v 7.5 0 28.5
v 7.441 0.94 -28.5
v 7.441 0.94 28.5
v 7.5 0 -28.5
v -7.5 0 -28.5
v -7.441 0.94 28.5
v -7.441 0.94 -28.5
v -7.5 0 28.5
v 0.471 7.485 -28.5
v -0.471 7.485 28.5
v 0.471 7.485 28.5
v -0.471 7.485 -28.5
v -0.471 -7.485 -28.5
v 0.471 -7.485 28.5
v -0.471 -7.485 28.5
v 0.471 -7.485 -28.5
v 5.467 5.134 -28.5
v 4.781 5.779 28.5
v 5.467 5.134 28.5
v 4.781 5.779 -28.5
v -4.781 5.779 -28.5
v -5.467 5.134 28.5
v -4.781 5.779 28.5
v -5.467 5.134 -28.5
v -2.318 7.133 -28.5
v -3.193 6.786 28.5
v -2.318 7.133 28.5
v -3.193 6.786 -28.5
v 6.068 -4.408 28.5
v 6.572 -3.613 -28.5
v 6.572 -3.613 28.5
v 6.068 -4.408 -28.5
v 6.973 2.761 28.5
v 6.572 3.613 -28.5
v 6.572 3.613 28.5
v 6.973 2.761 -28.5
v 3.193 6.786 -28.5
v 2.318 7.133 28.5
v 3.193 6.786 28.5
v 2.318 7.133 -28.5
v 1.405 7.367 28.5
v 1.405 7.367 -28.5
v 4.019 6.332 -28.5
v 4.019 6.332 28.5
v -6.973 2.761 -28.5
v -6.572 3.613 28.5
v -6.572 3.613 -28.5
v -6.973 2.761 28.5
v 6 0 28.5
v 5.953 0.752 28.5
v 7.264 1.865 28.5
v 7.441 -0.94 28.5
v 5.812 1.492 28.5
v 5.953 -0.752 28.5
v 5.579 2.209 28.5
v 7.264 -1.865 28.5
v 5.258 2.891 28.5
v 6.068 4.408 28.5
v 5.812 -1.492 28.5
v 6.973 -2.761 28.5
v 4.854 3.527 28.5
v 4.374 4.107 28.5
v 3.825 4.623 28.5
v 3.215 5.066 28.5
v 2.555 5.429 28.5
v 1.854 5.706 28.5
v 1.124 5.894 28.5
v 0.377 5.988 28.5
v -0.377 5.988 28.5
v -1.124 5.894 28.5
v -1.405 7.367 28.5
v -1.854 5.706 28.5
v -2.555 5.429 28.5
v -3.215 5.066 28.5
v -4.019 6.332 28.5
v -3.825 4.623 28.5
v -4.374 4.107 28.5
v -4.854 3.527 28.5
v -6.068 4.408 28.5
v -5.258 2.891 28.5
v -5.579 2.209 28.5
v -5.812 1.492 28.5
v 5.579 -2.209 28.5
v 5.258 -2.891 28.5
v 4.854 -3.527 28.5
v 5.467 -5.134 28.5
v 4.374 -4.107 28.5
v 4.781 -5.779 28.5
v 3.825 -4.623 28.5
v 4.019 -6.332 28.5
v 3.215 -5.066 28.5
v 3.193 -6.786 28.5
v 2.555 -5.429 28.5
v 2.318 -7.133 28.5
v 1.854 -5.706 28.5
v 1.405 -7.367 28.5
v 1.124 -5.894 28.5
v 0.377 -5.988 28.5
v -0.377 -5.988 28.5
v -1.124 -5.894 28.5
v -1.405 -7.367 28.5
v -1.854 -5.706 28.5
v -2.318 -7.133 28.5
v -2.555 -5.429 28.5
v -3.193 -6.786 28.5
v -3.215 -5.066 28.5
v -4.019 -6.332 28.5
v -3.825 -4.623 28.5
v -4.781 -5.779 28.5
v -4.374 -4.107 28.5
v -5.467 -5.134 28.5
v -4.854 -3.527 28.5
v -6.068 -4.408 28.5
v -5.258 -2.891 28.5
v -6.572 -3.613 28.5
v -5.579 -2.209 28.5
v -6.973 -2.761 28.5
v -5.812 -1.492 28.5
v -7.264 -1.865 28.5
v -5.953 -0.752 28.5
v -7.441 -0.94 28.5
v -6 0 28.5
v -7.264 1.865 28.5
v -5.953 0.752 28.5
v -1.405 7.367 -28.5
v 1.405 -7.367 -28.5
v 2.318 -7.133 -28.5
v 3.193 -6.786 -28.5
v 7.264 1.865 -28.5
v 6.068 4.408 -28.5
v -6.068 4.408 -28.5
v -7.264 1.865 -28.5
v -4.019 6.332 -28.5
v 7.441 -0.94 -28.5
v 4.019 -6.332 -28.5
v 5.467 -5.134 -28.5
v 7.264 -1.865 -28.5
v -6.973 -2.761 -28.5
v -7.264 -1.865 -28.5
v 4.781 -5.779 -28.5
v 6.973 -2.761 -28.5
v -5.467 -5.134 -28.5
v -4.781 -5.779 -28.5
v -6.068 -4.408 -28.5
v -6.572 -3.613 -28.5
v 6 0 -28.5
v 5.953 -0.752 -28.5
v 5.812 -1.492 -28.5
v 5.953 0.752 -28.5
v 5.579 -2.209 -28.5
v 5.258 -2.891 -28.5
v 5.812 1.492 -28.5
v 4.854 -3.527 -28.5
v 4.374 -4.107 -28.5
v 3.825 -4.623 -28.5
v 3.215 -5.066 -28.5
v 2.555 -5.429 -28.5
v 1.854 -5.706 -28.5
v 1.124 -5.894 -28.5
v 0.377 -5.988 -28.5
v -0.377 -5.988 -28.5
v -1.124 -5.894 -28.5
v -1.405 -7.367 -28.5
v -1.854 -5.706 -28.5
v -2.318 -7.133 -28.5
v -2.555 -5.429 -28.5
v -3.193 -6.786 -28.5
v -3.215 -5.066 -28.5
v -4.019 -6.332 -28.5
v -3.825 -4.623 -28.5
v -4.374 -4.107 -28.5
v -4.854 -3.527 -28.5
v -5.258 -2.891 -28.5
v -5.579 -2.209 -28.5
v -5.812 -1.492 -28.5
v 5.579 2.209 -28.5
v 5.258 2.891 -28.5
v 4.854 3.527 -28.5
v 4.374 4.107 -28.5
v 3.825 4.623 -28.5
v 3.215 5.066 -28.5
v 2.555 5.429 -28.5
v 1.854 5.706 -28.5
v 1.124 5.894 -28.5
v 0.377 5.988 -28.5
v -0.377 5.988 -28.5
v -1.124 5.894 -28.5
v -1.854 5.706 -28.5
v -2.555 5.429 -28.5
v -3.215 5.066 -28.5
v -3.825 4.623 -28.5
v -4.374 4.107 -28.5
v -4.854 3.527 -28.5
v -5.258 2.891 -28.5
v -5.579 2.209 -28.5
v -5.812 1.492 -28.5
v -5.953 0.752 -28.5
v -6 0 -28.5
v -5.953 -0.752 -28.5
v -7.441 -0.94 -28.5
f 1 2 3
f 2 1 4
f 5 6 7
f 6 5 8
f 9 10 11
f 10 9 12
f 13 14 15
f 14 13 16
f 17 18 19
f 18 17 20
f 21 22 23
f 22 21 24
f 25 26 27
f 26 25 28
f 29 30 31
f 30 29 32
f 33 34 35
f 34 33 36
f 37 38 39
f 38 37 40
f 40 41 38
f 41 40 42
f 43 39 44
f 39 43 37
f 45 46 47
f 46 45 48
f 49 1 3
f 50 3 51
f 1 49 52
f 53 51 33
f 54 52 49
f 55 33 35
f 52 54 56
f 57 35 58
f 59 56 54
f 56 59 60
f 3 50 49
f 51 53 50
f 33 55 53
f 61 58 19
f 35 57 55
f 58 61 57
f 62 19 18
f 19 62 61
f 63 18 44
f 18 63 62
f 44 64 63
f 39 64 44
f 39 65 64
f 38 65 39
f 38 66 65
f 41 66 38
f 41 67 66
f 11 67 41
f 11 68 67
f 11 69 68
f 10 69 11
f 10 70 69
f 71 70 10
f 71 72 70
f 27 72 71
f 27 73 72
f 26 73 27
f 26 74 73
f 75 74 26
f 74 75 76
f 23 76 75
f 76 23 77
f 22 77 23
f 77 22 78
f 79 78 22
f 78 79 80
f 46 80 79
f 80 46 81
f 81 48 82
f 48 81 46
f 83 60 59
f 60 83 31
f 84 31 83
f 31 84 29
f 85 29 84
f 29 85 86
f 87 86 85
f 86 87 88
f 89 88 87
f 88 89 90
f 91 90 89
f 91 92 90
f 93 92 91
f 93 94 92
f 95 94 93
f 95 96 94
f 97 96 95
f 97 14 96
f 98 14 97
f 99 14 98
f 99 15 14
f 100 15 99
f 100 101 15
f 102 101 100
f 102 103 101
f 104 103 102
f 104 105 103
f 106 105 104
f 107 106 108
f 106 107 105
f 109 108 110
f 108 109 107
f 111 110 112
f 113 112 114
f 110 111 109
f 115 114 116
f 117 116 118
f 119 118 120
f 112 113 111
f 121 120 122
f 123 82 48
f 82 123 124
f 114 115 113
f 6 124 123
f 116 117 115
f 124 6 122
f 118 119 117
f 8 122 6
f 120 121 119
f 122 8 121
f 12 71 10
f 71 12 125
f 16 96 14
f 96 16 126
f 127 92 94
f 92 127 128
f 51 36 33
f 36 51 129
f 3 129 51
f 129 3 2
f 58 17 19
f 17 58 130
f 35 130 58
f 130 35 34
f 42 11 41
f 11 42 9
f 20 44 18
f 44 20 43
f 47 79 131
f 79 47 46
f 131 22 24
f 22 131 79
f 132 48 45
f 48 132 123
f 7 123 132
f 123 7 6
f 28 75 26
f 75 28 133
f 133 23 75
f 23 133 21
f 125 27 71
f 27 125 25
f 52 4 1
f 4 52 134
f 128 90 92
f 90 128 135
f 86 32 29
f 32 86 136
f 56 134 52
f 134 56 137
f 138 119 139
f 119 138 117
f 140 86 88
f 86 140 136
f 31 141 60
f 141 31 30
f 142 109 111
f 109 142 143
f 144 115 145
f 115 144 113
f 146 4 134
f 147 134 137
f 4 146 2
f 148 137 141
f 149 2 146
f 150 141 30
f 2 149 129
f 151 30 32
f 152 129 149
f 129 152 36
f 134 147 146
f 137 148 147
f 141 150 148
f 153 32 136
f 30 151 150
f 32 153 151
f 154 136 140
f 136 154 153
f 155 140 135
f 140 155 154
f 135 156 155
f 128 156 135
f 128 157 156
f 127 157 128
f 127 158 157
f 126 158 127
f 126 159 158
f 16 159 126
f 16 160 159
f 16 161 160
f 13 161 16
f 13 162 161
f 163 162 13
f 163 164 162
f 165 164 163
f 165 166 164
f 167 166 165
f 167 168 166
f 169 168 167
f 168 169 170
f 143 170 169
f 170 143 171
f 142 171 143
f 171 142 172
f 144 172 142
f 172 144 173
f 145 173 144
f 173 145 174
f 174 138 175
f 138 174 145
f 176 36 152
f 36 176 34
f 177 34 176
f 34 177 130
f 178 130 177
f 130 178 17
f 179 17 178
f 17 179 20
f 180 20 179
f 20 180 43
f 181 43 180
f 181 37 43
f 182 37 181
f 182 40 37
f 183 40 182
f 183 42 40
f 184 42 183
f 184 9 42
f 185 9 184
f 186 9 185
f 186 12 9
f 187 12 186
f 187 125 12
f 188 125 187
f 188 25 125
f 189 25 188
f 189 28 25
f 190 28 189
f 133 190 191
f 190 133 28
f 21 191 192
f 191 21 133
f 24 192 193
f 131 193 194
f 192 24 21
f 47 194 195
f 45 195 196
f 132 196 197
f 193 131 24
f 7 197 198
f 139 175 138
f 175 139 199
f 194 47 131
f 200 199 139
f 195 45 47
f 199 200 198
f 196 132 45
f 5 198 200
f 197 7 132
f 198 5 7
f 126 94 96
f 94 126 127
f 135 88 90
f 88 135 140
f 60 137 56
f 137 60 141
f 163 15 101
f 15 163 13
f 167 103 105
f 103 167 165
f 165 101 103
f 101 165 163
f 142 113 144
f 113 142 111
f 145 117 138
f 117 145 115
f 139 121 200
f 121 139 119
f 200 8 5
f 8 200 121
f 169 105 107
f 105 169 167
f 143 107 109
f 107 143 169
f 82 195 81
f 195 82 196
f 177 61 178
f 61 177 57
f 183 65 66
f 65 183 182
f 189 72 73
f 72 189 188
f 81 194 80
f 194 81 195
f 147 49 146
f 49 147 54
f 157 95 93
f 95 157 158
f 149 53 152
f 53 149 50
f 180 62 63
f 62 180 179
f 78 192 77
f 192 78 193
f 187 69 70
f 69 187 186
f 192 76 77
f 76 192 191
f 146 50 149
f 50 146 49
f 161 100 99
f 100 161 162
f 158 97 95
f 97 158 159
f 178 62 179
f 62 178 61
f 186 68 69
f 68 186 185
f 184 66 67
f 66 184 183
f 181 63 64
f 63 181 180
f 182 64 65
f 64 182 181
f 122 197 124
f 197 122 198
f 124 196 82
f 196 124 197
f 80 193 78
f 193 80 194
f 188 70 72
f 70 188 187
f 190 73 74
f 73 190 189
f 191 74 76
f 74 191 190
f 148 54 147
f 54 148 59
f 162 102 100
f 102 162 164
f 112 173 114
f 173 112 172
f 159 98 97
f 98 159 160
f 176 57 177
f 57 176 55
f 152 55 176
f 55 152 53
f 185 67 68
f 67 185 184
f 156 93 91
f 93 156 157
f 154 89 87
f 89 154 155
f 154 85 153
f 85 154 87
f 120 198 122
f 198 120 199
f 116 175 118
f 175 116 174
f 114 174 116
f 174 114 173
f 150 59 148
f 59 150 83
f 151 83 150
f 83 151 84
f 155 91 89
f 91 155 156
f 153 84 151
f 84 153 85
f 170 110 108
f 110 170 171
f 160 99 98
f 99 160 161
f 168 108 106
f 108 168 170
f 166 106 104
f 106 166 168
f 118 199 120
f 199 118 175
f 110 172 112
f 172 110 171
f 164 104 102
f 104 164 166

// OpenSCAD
$fn = 50;


difference() {
	union() {
		translate(v = [0, 0, -28.5000000000]) {
			cylinder(h = 57, r = 7.5000000000);
		}
	}
	union() {
		translate(v = [0, 0, -100.0000000000]) {
			cylinder(h = 200, r = 6);
		}
	}
}
